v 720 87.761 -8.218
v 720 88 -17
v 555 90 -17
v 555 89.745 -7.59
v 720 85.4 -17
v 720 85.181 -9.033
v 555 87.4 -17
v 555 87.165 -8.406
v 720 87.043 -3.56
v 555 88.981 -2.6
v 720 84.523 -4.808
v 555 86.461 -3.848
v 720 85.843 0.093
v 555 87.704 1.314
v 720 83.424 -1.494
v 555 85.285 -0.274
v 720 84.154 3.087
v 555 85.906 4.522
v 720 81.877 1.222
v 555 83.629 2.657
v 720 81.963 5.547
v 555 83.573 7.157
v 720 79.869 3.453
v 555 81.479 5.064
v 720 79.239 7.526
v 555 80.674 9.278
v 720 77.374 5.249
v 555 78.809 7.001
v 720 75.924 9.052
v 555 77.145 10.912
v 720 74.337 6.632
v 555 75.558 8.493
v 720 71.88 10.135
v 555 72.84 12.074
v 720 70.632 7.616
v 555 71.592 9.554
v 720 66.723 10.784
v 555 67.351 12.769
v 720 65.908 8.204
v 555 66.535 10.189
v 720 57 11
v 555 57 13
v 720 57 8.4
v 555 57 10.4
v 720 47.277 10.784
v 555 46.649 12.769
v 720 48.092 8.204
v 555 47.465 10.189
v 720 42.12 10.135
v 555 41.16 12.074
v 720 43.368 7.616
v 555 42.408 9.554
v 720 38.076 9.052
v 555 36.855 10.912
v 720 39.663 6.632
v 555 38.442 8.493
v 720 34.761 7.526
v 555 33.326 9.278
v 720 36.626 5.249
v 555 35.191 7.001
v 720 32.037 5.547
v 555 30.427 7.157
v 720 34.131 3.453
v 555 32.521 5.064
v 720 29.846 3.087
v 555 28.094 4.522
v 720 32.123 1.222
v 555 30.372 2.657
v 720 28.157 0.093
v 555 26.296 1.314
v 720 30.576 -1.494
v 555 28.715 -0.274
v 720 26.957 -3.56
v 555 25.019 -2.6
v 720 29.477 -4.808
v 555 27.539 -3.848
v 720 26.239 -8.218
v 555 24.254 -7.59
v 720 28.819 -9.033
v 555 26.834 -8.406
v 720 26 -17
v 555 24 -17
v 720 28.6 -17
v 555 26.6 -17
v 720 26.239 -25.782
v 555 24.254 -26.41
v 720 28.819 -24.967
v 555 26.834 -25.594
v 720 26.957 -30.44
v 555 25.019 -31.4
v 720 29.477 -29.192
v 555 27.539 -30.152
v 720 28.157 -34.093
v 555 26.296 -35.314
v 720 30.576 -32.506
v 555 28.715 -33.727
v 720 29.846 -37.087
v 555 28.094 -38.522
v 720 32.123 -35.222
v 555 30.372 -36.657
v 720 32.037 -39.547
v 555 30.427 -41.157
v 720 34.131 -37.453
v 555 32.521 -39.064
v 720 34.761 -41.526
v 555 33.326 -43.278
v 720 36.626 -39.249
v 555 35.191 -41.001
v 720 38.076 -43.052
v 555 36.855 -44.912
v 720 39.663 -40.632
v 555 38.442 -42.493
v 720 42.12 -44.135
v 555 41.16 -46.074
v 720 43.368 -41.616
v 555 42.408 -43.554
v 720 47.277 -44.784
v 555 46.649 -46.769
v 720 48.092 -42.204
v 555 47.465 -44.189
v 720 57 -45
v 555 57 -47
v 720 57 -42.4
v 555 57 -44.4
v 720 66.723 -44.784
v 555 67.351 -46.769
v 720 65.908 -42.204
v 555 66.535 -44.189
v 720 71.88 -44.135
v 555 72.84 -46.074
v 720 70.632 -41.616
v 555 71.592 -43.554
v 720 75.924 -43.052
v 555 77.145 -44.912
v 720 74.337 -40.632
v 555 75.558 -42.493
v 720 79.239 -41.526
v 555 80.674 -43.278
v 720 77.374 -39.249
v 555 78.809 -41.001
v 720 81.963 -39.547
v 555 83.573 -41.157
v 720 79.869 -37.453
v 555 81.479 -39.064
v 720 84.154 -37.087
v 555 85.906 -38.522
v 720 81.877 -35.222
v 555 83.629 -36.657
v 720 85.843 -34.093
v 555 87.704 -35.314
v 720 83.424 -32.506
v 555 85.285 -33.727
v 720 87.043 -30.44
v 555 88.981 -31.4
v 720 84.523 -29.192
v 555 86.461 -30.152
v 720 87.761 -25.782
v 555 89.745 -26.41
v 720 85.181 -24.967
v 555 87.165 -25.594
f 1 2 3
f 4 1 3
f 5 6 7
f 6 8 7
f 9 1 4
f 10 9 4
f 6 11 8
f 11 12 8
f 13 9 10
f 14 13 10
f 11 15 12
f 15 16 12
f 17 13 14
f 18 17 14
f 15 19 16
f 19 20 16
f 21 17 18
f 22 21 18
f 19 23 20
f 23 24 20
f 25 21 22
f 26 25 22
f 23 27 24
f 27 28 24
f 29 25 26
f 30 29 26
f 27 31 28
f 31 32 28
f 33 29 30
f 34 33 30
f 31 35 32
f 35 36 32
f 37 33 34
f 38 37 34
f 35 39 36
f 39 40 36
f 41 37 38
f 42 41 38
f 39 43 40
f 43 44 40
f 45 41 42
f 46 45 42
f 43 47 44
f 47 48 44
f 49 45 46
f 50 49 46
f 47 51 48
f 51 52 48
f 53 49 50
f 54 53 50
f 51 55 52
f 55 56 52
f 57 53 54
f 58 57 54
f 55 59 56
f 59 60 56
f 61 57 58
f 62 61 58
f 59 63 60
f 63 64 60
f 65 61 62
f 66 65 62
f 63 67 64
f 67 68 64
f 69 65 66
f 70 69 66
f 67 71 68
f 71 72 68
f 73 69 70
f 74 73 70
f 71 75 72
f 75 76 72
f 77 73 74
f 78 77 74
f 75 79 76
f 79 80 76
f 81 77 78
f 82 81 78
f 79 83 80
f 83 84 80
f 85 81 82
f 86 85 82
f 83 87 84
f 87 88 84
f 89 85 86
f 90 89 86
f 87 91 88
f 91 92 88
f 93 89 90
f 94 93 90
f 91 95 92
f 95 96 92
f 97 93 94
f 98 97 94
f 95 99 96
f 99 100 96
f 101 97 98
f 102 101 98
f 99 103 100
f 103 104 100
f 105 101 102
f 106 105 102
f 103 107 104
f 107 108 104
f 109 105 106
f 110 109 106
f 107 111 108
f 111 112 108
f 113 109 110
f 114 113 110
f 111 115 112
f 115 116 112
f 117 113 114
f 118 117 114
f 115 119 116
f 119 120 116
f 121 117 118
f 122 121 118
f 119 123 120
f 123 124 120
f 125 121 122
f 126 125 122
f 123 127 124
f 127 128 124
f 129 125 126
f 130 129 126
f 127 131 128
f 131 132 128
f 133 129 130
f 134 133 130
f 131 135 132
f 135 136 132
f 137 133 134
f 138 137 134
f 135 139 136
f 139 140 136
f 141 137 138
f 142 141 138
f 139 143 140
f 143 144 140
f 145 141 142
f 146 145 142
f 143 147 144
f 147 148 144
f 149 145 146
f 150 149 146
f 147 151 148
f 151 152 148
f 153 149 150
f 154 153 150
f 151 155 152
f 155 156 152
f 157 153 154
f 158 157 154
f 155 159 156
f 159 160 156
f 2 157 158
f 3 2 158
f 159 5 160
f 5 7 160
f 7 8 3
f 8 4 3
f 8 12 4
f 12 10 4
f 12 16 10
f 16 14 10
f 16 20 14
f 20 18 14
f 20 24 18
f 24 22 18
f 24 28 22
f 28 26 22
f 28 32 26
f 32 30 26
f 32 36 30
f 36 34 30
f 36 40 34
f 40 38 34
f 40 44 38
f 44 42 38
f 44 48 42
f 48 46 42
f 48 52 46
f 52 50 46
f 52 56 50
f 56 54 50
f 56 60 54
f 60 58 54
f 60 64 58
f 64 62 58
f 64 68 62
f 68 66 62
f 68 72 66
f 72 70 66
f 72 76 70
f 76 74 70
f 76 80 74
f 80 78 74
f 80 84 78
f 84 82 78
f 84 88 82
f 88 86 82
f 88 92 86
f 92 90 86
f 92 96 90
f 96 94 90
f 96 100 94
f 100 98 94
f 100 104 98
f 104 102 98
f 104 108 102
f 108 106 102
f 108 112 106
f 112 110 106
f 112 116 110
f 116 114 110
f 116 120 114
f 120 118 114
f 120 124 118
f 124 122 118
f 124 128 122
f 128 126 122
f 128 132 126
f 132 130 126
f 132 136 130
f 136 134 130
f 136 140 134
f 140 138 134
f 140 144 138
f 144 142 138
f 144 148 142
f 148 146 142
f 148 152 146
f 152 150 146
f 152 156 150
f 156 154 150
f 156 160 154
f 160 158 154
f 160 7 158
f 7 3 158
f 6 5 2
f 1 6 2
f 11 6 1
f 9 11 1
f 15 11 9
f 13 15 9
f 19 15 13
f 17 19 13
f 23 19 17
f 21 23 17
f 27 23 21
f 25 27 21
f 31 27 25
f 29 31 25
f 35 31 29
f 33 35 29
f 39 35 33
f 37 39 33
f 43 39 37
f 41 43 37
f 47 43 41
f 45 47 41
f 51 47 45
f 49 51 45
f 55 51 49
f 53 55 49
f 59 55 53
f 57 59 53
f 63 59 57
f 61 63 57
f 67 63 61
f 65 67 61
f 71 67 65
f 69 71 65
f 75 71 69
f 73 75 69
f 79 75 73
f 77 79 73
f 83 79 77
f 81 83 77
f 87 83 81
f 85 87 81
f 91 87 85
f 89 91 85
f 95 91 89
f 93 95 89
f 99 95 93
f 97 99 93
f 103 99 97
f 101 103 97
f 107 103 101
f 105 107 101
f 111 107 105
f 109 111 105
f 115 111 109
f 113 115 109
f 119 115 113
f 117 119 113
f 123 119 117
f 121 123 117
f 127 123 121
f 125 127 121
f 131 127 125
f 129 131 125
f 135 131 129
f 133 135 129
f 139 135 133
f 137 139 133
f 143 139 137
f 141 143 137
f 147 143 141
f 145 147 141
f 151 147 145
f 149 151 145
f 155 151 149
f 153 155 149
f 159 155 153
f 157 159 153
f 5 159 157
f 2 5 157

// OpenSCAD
polyhedron(points=[[555.0, 90.0, -17.0], [555.0, 89.745483, -7.59023], [555.0, 88.981063, -2.600075], [555.0, 87.703614, 1.313674], [555.0, 85.905965, 4.522015], [555.0, 83.57309, 7.157355], [555.0, 80.674217, 9.27815], [555.0, 77.145042, 10.912376], [555.0, 72.839918, 12.073694], [555.0, 67.350748, 12.76862], [555.0, 57.0, 13.0], [555.0, 46.649252, 12.76862], [555.0, 41.160082, 12.073694], [555.0, 36.854958, 10.912376], [555.0, 33.325783, 9.27815], [555.0, 30.42691, 7.157355], [555.0, 28.094035, 4.522015], [555.0, 26.296386, 1.313674], [555.0, 25.018937, -2.600075], [555.0, 24.254517, -7.59023], [555.0, 24.0, -17.0], [555.0, 24.254517, -26.40977], [555.0, 25.018937, -31.399925], [555.0, 26.296386, -35.313674], [555.0, 28.094035, -38.522015], [555.0, 30.42691, -41.157355], [555.0, 33.325783, -43.27815], [555.0, 36.854958, -44.912376], [555.0, 41.160082, -46.073694], [555.0, 46.649252, -46.76862], [555.0, 57.0, -47.0], [555.0, 67.350748, -46.76862], [555.0, 72.839918, -46.073694], [555.0, 77.145042, -44.912376], [555.0, 80.674217, -43.27815], [555.0, 83.57309, -41.157355], [555.0, 85.905965, -38.522015], [555.0, 87.703614, -35.313674], [555.0, 88.981063, -31.399925], [555.0, 89.745483, -26.40977], [555.0, 87.4, -17.0], [555.0, 87.165535, -8.405743], [555.0, 86.461343, -3.848068], [555.0, 85.284541, -0.273511], [555.0, 83.628525, 2.656774], [555.0, 81.479453, 5.063718], [555.0, 78.808975, 7.00071], [555.0, 75.557856, 8.493303], [555.0, 71.591924, 9.553973], [555.0, 66.535234, 10.188673], [555.0, 57.0, 10.4], [555.0, 47.464766, 10.188673], [555.0, 42.408076, 9.553973], [555.0, 38.442144, 8.493303], [555.0, 35.191025, 7.00071], [555.0, 32.520547, 5.063718], [555.0, 30.371475, 2.656774], [555.0, 28.715459, -0.273511], [555.0, 27.538657, -3.848068], [555.0, 26.834465, -8.405743], [555.0, 26.6, -17.0], [555.0, 26.834465, -25.594257], [555.0, 27.538657, -30.151932], [555.0, 28.715459, -33.726489], [555.0, 30.371475, -36.656774], [555.0, 32.520547, -39.063718], [555.0, 35.191025, -41.00071], [555.0, 38.442144, -42.493303], [555.0, 42.408076, -43.553973], [555.0, 47.464766, -44.188673], [555.0, 57.0, -44.4], [555.0, 66.535234, -44.188673], [555.0, 71.591924, -43.553973], [555.0, 75.557856, -42.493303], [555.0, 78.808975, -41.00071], [555.0, 81.479453, -39.063718], [555.0, 83.628525, -36.656774], [555.0, 85.284541, -33.726489], [555.0, 86.461343, -30.151932], [555.0, 87.165535, -25.594257], [720.0, 88.0, -17.0], [720.0, 87.760908, -8.217548], [720.0, 87.042817, -3.56007], [720.0, 85.842789, 0.092763], [720.0, 84.154088, 3.087214], [720.0, 81.9626, 5.546865], [720.0, 79.239416, 7.526273], [720.0, 75.92413, 9.051551], [720.0, 71.879923, 10.135447], [720.0, 66.723429, 10.784046], [720.0, 57.0, 11.0], [720.0, 47.276571, 10.784046], [720.0, 42.120077, 10.135447], [720.0, 38.07587, 9.051551], [720.0, 34.760584, 7.526273], [720.0, 32.0374, 5.546865], [720.0, 29.845912, 3.087214], [720.0, 28.157211, 0.092763], [720.0, 26.957183, -3.56007], [720.0, 26.239092, -8.217548], [720.0, 26.0, -17.0], [720.0, 26.239092, -25.782452], [720.0, 26.957183, -30.43993], [720.0, 28.157211, -34.092763], [720.0, 29.845912, -37.087214], [720.0, 32.0374, -39.546865], [720.0, 34.760584, -41.526273], [720.0, 38.07587, -43.051551], [720.0, 42.120077, -44.135447], [720.0, 47.276571, -44.784046], [720.0, 57.0, -45.0], [720.0, 66.723429, -44.784046], [720.0, 71.879923, -44.135447], [720.0, 75.92413, -43.051551], [720.0, 79.239416, -41.526273], [720.0, 81.9626, -39.546865], [720.0, 84.154088, -37.087214], [720.0, 85.842789, -34.092763], [720.0, 87.042817, -30.43993], [720.0, 87.760908, -25.782452], [720.0, 85.4, -17.0], [720.0, 85.180961, -9.033061], [720.0, 84.523097, -4.808063], [720.0, 83.423716, -1.494423], [720.0, 81.876648, 1.221973], [720.0, 79.868963, 3.453227], [720.0, 77.374174, 5.248833], [720.0, 74.336945, 6.632478], [720.0, 70.631929, 7.615727], [720.0, 65.907916, 8.204099], [720.0, 57.0, 8.4], [720.0, 48.092084, 8.204099], [720.0, 43.368071, 7.615727], [720.0, 39.663055, 6.632478], [720.0, 36.625826, 5.248833], [720.0, 34.131037, 3.453227], [720.0, 32.123352, 1.221973], [720.0, 30.576284, -1.494423], [720.0, 29.476903, -4.808063], [720.0, 28.819039, -9.033061], [720.0, 28.6, -17.0], [720.0, 28.819039, -24.966939], [720.0, 29.476903, -29.191937], [720.0, 30.576284, -32.505577], [720.0, 32.123352, -35.221973], [720.0, 34.131037, -37.453227], [720.0, 36.625826, -39.248833], [720.0, 39.663055, -40.632478], [720.0, 43.368071, -41.615727], [720.0, 48.092084, -42.204099], [720.0, 57.0, -42.4], [720.0, 65.907916, -42.204099], [720.0, 70.631929, -41.615727], [720.0, 74.336945, -40.632478], [720.0, 77.374174, -39.248833], [720.0, 79.868963, -37.453227], [720.0, 81.876648, -35.221973], [720.0, 83.423716, -32.505577], [720.0, 84.523097, -29.191937], [720.0, 85.180961, -24.966939]], faces=[[0, 80, 81], [0, 81, 1], [40, 121, 120], [40, 41, 121], [1, 81, 82], [1, 82, 2], [41, 122, 121], [41, 42, 122], [2, 82, 83], [2, 83, 3], [42, 123, 122], [42, 43, 123], [3, 83, 84], [3, 84, 4], [43, 124, 123], [43, 44, 124], [4, 84, 85], [4, 85, 5], [44, 125, 124], [44, 45, 125], [5, 85, 86], [5, 86, 6], [45, 126, 125], [45, 46, 126], [6, 86, 87], [6, 87, 7], [46, 127, 126], [46, 47, 127], [7, 87, 88], [7, 88, 8], [47, 128, 127], [47, 48, 128], [8, 88, 89], [8, 89, 9], [48, 129, 128], [48, 49, 129], [9, 89, 90], [9, 90, 10], [49, 130, 129], [49, 50, 130], [10, 90, 91], [10, 91, 11], [50, 131, 130], [50, 51, 131], [11, 91, 92], [11, 92, 12], [51, 132, 131], [51, 52, 132], [12, 92, 93], [12, 93, 13], [52, 133, 132], [52, 53, 133], [13, 93, 94], [13, 94, 14], [53, 134, 133], [53, 54, 134], [14, 94, 95], [14, 95, 15], [54, 135, 134], [54, 55, 135], [15, 95, 96], [15, 96, 16], [55, 136, 135], [55, 56, 136], [16, 96, 97], [16, 97, 17], [56, 137, 136], [56, 57, 137], [17, 97, 98], [17, 98, 18], [57, 138, 137], [57, 58, 138], [18, 98, 99], [18, 99, 19], [58, 139, 138], [58, 59, 139], [19, 99, 100], [19, 100, 20], [59, 140, 139], [59, 60, 140], [20, 100, 101], [20, 101, 21], [60, 141, 140], [60, 61, 141], [21, 101, 102], [21, 102, 22], [61, 142, 141], [61, 62, 142], [22, 102, 103], [22, 103, 23], [62, 143, 142], [62, 63, 143], [23, 103, 104], [23, 104, 24], [63, 144, 143], [63, 64, 144], [24, 104, 105], [24, 105, 25], [64, 145, 144], [64, 65, 145], [25, 105, 106], [25, 106, 26], [65, 146, 145], [65, 66, 146], [26, 106, 107], [26, 107, 27], [66, 147, 146], [66, 67, 147], [27, 107, 108], [27, 108, 28], [67, 148, 147], [67, 68, 148], [28, 108, 109], [28, 109, 29], [68, 149, 148], [68, 69, 149], [29, 109, 110], [29, 110, 30], [69, 150, 149], [69, 70, 150], [30, 110, 111], [30, 111, 31], [70, 151, 150], [70, 71, 151], [31, 111, 112], [31, 112, 32], [71, 152, 151], [71, 72, 152], [32, 112, 113], [32, 113, 33], [72, 153, 152], [72, 73, 153], [33, 113, 114], [33, 114, 34], [73, 154, 153], [73, 74, 154], [34, 114, 115], [34, 115, 35], [74, 155, 154], [74, 75, 155], [35, 115, 116], [35, 116, 36], [75, 156, 155], [75, 76, 156], [36, 116, 117], [36, 117, 37], [76, 157, 156], [76, 77, 157], [37, 117, 118], [37, 118, 38], [77, 158, 157], [77, 78, 158], [38, 118, 119], [38, 119, 39], [78, 159, 158], [78, 79, 159], [39, 119, 80], [39, 80, 0], [79, 120, 159], [79, 40, 120], [0, 41, 40], [0, 1, 41], [1, 42, 41], [1, 2, 42], [2, 43, 42], [2, 3, 43], [3, 44, 43], [3, 4, 44], [4, 45, 44], [4, 5, 45], [5, 46, 45], [5, 6, 46], [6, 47, 46], [6, 7, 47], [7, 48, 47], [7, 8, 48], [8, 49, 48], [8, 9, 49], [9, 50, 49], [9, 10, 50], [10, 51, 50], [10, 11, 51], [11, 52, 51], [11, 12, 52], [12, 53, 52], [12, 13, 53], [13, 54, 53], [13, 14, 54], [14, 55, 54], [14, 15, 55], [15, 56, 55], [15, 16, 56], [16, 57, 56], [16, 17, 57], [17, 58, 57], [17, 18, 58], [18, 59, 58], [18, 19, 59], [19, 60, 59], [19, 20, 60], [20, 61, 60], [20, 21, 61], [21, 62, 61], [21, 22, 62], [22, 63, 62], [22, 23, 63], [23, 64, 63], [23, 24, 64], [24, 65, 64], [24, 25, 65], [25, 66, 65], [25, 26, 66], [26, 67, 66], [26, 27, 67], [27, 68, 67], [27, 28, 68], [28, 69, 68], [28, 29, 69], [29, 70, 69], [29, 30, 70], [30, 71, 70], [30, 31, 71], [31, 72, 71], [31, 32, 72], [32, 73, 72], [32, 33, 73], [33, 74, 73], [33, 34, 74], [34, 75, 74], [34, 35, 75], [35, 76, 75], [35, 36, 76], [36, 77, 76], [36, 37, 77], [37, 78, 77], [37, 38, 78], [38, 79, 78], [38, 39, 79], [39, 40, 79], [39, 0, 40], [80, 120, 121], [80, 121, 81], [81, 121, 122], [81, 122, 82], [82, 122, 123], [82, 123, 83], [83, 123, 124], [83, 124, 84], [84, 124, 125], [84, 125, 85], [85, 125, 126], [85, 126, 86], [86, 126, 127], [86, 127, 87], [87, 127, 128], [87, 128, 88], [88, 128, 129], [88, 129, 89], [89, 129, 130], [89, 130, 90], [90, 130, 131], [90, 131, 91], [91, 131, 132], [91, 132, 92], [92, 132, 133], [92, 133, 93], [93, 133, 134], [93, 134, 94], [94, 134, 135], [94, 135, 95], [95, 135, 136], [95, 136, 96], [96, 136, 137], [96, 137, 97], [97, 137, 138], [97, 138, 98], [98, 138, 139], [98, 139, 99], [99, 139, 140], [99, 140, 100], [100, 140, 141], [100, 141, 101], [101, 141, 142], [101, 142, 102], [102, 142, 143], [102, 143, 103], [103, 143, 144], [103, 144, 104], [104, 144, 145], [104, 145, 105], [105, 145, 146], [105, 146, 106], [106, 146, 147], [106, 147, 107], [107, 147, 148], [107, 148, 108], [108, 148, 149], [108, 149, 109], [109, 149, 150], [109, 150, 110], [110, 150, 151], [110, 151, 111], [111, 151, 152], [111, 152, 112], [112, 152, 153], [112, 153, 113], [113, 153, 154], [113, 154, 114], [114, 154, 155], [114, 155, 115], [115, 155, 156], [115, 156, 116], [116, 156, 157], [116, 157, 117], [117, 157, 158], [117, 158, 118], [118, 158, 159], [118, 159, 119], [119, 159, 120], [119, 120, 80]], convexity=30);
